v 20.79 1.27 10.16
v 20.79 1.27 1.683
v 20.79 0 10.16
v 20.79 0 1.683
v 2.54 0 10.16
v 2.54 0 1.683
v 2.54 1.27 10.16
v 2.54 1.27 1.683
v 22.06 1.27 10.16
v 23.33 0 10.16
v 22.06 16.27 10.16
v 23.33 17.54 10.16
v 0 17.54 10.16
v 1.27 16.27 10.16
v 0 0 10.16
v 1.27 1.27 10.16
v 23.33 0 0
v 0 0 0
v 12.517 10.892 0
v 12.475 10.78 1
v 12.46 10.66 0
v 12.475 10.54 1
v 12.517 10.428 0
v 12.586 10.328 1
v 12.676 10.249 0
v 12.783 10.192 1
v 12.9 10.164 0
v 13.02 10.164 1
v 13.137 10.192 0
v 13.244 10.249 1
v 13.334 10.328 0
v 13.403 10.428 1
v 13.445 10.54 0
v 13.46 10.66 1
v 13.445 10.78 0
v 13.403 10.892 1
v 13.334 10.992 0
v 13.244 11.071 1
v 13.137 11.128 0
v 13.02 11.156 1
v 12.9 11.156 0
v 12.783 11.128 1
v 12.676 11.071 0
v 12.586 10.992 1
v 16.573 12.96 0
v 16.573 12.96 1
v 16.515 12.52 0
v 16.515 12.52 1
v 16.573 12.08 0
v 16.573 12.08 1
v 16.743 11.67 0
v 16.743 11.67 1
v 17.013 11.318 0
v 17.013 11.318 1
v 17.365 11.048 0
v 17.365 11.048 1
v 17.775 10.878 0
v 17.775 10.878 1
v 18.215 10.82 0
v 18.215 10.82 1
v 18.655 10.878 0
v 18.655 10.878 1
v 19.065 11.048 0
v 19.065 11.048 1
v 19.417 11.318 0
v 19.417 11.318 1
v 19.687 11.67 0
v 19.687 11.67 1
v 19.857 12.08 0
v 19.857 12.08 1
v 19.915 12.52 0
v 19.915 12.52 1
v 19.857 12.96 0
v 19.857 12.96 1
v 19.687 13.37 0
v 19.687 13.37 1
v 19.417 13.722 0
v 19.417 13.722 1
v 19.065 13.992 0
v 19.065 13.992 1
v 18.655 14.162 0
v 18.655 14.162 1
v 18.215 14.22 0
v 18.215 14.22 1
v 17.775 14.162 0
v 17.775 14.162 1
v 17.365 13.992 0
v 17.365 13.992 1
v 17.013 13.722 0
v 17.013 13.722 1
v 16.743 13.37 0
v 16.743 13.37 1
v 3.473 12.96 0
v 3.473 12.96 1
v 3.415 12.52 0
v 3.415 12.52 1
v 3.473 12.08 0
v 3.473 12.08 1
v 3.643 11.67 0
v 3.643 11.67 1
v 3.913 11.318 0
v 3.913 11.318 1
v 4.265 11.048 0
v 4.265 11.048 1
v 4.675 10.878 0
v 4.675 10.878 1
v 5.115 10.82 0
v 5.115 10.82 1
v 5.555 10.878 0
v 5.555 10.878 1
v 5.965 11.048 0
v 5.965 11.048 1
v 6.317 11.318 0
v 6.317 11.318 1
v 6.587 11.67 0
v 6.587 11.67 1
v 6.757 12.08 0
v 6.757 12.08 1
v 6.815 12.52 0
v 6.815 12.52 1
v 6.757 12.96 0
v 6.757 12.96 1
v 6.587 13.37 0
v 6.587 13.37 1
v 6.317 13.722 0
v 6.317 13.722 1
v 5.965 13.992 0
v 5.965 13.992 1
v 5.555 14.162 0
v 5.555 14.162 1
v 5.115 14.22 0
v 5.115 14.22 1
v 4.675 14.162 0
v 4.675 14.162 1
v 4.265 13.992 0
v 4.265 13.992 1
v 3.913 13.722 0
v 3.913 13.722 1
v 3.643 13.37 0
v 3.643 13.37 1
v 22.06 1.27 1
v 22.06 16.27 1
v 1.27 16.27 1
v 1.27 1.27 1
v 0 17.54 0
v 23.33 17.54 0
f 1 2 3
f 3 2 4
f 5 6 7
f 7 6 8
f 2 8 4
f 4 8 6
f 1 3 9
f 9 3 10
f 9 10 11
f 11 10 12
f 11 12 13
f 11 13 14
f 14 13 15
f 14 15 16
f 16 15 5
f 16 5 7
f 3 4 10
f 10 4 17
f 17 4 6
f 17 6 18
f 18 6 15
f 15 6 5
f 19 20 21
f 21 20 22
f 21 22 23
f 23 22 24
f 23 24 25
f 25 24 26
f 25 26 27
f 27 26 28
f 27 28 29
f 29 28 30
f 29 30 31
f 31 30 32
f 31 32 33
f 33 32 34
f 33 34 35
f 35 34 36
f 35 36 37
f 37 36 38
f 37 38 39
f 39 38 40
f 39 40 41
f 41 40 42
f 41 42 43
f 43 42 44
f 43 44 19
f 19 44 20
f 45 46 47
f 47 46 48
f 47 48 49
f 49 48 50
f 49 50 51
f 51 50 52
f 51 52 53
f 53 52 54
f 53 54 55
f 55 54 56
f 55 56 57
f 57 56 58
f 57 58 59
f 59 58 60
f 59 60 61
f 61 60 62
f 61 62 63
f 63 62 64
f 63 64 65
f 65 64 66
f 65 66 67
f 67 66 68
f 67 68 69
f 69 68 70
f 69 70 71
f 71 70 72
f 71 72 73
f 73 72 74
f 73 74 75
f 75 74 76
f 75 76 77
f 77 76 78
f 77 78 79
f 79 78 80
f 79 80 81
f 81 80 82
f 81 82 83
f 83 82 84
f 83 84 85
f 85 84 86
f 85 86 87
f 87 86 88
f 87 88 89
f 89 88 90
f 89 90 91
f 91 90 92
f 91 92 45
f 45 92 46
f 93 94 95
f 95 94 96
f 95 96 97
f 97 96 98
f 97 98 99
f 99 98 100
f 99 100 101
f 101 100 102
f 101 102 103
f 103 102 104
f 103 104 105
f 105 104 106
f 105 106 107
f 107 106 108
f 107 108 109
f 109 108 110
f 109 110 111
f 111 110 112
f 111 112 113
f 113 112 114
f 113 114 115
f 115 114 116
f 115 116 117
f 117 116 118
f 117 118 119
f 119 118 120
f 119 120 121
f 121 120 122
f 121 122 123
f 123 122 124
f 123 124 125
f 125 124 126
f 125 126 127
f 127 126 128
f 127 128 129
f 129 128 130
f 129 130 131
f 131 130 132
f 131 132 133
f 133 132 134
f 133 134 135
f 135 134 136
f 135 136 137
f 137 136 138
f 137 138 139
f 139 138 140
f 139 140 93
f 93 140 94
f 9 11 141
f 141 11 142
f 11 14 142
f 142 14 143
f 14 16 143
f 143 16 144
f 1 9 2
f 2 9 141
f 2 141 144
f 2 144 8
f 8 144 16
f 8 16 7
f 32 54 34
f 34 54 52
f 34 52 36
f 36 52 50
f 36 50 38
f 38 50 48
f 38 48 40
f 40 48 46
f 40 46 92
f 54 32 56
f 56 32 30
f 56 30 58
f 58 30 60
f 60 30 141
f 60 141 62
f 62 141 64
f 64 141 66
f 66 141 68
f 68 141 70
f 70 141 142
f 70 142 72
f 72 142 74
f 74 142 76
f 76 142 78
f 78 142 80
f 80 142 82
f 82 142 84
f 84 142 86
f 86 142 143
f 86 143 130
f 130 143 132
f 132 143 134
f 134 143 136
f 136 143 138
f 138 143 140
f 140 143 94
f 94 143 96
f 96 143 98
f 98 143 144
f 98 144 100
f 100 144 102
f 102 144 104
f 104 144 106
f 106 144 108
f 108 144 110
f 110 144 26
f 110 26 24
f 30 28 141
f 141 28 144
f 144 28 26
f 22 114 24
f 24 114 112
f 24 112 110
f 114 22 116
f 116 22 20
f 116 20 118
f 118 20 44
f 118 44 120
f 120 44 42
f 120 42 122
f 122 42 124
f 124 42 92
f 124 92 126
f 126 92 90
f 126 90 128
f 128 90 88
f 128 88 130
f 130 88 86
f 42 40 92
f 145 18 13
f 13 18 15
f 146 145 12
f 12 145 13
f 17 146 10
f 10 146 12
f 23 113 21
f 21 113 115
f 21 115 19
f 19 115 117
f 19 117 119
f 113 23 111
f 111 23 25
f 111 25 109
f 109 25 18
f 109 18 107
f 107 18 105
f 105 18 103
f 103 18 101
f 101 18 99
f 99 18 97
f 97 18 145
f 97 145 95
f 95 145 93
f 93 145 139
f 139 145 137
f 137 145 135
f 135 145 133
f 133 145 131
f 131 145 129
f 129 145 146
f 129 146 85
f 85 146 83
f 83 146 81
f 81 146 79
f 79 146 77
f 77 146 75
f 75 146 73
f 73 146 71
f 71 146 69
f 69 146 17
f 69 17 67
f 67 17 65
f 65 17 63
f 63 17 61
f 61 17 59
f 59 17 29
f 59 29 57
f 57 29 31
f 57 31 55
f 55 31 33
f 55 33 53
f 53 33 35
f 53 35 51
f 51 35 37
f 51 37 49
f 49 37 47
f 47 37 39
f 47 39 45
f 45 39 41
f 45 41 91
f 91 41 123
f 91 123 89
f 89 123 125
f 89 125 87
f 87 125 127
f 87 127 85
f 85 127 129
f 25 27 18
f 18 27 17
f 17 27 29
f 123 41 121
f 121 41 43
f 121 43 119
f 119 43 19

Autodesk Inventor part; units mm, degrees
ref_plane "YZ Plane" through (0, 0, 0) normal (1, 0, 0) x (0, 1, 0)
ref_plane "XZ Plane" through (0, 0, 0) normal (0, 1, 0) x (-1, 0, 0)
ref_plane "XY Plane" through (0, 0, 0) normal (0, 0, 1) x (1, 0, 0)
sketch "Sketch1" plane through (0, 0, 0) normal (0, 0, 1) x (1, 0, 0)
  line L0 (0, 0) -> (23.33, 0)
  line L1 (23.33, 0) -> (23.33, 17.54)
  line L2 (23.33, 17.54) -> (0, 17.54)
  line L3 (0, 17.54) -> (0, 0)
  dimension "d0" = 23.33
  dimension "d1" = 17.54
extrude "Extrusion1" add sketch "Sketch1" along normal blind 10.16
sketch "Sketch2" plane through (0, 0, 10.16) normal (0, 0, 1) x (1, 0, 0)
  line L0 (1.27, 16.27) -> (22.06, 16.27)
  line L1 (22.06, 16.27) -> (22.06, 1.27)
  line L2 (22.06, 1.27) -> (1.27, 1.27)
  line L3 (1.27, 1.27) -> (1.27, 16.27)
  line L4 (0, 0) -> (23.33, 0) projected
  line L5 (23.33, 0) -> (23.33, 17.54) projected
  line L6 (23.33, 17.54) -> (0, 17.54) projected
  line L7 (0, 17.54) -> (0, 0) projected
  dimension "d4" = 1.27
  dimension "d5" = 1.27
  dimension "d6" = 1.27
  dimension "d7" = 1.27
extrude "Extrusion2" cut sketch "Sketch2" against normal blind 9.16 contours L0 L1 L2 L3
sketch "Sketch3" plane through (0, 0, 1) normal (0, 0, 1) x (1, 0, 0)
  line L0 (23.33, 17.54) -> (0, 17.54) construction
  line L1 (11.665, 17.54) -> (11.665, 0) construction
  line L2 (0, 0) -> (23.33, 0) construction
  line L3 (23.33, 0) -> (23.33, 17.54) construction
  line L4 (23.33, 8.77) -> (0, 8.77) construction
  line L5 (0, 17.54) -> (0, 0) construction
  circle A0 centre (5.115, 12.52) radius 1.7
  circle A1 centre (12.96, 10.66) radius 0.5
  circle A2 centre (18.215, 12.52) radius 1.7
  line L6 (1.27, 16.27) -> (22.06, 16.27) projected
  dimension "d10" = 3.4
  dimension "d11" = 3.4
  dimension "d13" = 6.55
  dimension "d14" = 6.55
  dimension "d15" = 3.75
  dimension "d16" = 3.75
  dimension "d17" = 1
  dimension "d18" = 5.255
  dimension "d19" = 1.86
extrude "Extrusion3" cut sketch "Sketch3" against normal through all
sketch "Sketch4" plane through (0, 0, 0) normal (0, -1, 0) x (1, 0, 0)
  line L0 (2.54, 1.6833) -> (20.79, 1.6833)
  line L1 (20.79, 1.6833) -> (20.79, 13.6213)
  line L2 (20.79, 13.6213) -> (2.54, 13.6213)
  line L3 (2.54, 13.6213) -> (2.54, 1.6833)
  line L4 (1.27, 10.16) -> (1.27, 1) projected
  line L5 (22.06, 10.16) -> (22.06, 1) projected
  point P0 (0, 0)
  dimension "d22" = 1.27
  dimension "d23" = 1.27
  dimension "d24" = 11.938
extrude "Extrusion4" cut sketch "Sketch4" against normal up to surface (1.27 mm away)
equation "\"d5\" = d4"
equation "\"d6\" = d4"
equation "\"d7\" = d4"
equation "\"d10\" = m3_clearance"
equation "\"d11\" = d12"
equation "\"d14\" = d13"
equation "\"d16\" = d15"
equation "\"d23\" = d22"
equation "\"m3_heat_set_insert\" = 4"
equation "\"m3_clearance\" = 3.4"
equation "\"m3_heat_set_depth\" = 7"
equation "\"robot_diameter\" = 354"
equation "\"hardboard_thickness\" = 5"
equation "\"motor_centerline_height\" = 13"
equation "\"d12\" = 3.4"
properties part number "microphone_casing"
